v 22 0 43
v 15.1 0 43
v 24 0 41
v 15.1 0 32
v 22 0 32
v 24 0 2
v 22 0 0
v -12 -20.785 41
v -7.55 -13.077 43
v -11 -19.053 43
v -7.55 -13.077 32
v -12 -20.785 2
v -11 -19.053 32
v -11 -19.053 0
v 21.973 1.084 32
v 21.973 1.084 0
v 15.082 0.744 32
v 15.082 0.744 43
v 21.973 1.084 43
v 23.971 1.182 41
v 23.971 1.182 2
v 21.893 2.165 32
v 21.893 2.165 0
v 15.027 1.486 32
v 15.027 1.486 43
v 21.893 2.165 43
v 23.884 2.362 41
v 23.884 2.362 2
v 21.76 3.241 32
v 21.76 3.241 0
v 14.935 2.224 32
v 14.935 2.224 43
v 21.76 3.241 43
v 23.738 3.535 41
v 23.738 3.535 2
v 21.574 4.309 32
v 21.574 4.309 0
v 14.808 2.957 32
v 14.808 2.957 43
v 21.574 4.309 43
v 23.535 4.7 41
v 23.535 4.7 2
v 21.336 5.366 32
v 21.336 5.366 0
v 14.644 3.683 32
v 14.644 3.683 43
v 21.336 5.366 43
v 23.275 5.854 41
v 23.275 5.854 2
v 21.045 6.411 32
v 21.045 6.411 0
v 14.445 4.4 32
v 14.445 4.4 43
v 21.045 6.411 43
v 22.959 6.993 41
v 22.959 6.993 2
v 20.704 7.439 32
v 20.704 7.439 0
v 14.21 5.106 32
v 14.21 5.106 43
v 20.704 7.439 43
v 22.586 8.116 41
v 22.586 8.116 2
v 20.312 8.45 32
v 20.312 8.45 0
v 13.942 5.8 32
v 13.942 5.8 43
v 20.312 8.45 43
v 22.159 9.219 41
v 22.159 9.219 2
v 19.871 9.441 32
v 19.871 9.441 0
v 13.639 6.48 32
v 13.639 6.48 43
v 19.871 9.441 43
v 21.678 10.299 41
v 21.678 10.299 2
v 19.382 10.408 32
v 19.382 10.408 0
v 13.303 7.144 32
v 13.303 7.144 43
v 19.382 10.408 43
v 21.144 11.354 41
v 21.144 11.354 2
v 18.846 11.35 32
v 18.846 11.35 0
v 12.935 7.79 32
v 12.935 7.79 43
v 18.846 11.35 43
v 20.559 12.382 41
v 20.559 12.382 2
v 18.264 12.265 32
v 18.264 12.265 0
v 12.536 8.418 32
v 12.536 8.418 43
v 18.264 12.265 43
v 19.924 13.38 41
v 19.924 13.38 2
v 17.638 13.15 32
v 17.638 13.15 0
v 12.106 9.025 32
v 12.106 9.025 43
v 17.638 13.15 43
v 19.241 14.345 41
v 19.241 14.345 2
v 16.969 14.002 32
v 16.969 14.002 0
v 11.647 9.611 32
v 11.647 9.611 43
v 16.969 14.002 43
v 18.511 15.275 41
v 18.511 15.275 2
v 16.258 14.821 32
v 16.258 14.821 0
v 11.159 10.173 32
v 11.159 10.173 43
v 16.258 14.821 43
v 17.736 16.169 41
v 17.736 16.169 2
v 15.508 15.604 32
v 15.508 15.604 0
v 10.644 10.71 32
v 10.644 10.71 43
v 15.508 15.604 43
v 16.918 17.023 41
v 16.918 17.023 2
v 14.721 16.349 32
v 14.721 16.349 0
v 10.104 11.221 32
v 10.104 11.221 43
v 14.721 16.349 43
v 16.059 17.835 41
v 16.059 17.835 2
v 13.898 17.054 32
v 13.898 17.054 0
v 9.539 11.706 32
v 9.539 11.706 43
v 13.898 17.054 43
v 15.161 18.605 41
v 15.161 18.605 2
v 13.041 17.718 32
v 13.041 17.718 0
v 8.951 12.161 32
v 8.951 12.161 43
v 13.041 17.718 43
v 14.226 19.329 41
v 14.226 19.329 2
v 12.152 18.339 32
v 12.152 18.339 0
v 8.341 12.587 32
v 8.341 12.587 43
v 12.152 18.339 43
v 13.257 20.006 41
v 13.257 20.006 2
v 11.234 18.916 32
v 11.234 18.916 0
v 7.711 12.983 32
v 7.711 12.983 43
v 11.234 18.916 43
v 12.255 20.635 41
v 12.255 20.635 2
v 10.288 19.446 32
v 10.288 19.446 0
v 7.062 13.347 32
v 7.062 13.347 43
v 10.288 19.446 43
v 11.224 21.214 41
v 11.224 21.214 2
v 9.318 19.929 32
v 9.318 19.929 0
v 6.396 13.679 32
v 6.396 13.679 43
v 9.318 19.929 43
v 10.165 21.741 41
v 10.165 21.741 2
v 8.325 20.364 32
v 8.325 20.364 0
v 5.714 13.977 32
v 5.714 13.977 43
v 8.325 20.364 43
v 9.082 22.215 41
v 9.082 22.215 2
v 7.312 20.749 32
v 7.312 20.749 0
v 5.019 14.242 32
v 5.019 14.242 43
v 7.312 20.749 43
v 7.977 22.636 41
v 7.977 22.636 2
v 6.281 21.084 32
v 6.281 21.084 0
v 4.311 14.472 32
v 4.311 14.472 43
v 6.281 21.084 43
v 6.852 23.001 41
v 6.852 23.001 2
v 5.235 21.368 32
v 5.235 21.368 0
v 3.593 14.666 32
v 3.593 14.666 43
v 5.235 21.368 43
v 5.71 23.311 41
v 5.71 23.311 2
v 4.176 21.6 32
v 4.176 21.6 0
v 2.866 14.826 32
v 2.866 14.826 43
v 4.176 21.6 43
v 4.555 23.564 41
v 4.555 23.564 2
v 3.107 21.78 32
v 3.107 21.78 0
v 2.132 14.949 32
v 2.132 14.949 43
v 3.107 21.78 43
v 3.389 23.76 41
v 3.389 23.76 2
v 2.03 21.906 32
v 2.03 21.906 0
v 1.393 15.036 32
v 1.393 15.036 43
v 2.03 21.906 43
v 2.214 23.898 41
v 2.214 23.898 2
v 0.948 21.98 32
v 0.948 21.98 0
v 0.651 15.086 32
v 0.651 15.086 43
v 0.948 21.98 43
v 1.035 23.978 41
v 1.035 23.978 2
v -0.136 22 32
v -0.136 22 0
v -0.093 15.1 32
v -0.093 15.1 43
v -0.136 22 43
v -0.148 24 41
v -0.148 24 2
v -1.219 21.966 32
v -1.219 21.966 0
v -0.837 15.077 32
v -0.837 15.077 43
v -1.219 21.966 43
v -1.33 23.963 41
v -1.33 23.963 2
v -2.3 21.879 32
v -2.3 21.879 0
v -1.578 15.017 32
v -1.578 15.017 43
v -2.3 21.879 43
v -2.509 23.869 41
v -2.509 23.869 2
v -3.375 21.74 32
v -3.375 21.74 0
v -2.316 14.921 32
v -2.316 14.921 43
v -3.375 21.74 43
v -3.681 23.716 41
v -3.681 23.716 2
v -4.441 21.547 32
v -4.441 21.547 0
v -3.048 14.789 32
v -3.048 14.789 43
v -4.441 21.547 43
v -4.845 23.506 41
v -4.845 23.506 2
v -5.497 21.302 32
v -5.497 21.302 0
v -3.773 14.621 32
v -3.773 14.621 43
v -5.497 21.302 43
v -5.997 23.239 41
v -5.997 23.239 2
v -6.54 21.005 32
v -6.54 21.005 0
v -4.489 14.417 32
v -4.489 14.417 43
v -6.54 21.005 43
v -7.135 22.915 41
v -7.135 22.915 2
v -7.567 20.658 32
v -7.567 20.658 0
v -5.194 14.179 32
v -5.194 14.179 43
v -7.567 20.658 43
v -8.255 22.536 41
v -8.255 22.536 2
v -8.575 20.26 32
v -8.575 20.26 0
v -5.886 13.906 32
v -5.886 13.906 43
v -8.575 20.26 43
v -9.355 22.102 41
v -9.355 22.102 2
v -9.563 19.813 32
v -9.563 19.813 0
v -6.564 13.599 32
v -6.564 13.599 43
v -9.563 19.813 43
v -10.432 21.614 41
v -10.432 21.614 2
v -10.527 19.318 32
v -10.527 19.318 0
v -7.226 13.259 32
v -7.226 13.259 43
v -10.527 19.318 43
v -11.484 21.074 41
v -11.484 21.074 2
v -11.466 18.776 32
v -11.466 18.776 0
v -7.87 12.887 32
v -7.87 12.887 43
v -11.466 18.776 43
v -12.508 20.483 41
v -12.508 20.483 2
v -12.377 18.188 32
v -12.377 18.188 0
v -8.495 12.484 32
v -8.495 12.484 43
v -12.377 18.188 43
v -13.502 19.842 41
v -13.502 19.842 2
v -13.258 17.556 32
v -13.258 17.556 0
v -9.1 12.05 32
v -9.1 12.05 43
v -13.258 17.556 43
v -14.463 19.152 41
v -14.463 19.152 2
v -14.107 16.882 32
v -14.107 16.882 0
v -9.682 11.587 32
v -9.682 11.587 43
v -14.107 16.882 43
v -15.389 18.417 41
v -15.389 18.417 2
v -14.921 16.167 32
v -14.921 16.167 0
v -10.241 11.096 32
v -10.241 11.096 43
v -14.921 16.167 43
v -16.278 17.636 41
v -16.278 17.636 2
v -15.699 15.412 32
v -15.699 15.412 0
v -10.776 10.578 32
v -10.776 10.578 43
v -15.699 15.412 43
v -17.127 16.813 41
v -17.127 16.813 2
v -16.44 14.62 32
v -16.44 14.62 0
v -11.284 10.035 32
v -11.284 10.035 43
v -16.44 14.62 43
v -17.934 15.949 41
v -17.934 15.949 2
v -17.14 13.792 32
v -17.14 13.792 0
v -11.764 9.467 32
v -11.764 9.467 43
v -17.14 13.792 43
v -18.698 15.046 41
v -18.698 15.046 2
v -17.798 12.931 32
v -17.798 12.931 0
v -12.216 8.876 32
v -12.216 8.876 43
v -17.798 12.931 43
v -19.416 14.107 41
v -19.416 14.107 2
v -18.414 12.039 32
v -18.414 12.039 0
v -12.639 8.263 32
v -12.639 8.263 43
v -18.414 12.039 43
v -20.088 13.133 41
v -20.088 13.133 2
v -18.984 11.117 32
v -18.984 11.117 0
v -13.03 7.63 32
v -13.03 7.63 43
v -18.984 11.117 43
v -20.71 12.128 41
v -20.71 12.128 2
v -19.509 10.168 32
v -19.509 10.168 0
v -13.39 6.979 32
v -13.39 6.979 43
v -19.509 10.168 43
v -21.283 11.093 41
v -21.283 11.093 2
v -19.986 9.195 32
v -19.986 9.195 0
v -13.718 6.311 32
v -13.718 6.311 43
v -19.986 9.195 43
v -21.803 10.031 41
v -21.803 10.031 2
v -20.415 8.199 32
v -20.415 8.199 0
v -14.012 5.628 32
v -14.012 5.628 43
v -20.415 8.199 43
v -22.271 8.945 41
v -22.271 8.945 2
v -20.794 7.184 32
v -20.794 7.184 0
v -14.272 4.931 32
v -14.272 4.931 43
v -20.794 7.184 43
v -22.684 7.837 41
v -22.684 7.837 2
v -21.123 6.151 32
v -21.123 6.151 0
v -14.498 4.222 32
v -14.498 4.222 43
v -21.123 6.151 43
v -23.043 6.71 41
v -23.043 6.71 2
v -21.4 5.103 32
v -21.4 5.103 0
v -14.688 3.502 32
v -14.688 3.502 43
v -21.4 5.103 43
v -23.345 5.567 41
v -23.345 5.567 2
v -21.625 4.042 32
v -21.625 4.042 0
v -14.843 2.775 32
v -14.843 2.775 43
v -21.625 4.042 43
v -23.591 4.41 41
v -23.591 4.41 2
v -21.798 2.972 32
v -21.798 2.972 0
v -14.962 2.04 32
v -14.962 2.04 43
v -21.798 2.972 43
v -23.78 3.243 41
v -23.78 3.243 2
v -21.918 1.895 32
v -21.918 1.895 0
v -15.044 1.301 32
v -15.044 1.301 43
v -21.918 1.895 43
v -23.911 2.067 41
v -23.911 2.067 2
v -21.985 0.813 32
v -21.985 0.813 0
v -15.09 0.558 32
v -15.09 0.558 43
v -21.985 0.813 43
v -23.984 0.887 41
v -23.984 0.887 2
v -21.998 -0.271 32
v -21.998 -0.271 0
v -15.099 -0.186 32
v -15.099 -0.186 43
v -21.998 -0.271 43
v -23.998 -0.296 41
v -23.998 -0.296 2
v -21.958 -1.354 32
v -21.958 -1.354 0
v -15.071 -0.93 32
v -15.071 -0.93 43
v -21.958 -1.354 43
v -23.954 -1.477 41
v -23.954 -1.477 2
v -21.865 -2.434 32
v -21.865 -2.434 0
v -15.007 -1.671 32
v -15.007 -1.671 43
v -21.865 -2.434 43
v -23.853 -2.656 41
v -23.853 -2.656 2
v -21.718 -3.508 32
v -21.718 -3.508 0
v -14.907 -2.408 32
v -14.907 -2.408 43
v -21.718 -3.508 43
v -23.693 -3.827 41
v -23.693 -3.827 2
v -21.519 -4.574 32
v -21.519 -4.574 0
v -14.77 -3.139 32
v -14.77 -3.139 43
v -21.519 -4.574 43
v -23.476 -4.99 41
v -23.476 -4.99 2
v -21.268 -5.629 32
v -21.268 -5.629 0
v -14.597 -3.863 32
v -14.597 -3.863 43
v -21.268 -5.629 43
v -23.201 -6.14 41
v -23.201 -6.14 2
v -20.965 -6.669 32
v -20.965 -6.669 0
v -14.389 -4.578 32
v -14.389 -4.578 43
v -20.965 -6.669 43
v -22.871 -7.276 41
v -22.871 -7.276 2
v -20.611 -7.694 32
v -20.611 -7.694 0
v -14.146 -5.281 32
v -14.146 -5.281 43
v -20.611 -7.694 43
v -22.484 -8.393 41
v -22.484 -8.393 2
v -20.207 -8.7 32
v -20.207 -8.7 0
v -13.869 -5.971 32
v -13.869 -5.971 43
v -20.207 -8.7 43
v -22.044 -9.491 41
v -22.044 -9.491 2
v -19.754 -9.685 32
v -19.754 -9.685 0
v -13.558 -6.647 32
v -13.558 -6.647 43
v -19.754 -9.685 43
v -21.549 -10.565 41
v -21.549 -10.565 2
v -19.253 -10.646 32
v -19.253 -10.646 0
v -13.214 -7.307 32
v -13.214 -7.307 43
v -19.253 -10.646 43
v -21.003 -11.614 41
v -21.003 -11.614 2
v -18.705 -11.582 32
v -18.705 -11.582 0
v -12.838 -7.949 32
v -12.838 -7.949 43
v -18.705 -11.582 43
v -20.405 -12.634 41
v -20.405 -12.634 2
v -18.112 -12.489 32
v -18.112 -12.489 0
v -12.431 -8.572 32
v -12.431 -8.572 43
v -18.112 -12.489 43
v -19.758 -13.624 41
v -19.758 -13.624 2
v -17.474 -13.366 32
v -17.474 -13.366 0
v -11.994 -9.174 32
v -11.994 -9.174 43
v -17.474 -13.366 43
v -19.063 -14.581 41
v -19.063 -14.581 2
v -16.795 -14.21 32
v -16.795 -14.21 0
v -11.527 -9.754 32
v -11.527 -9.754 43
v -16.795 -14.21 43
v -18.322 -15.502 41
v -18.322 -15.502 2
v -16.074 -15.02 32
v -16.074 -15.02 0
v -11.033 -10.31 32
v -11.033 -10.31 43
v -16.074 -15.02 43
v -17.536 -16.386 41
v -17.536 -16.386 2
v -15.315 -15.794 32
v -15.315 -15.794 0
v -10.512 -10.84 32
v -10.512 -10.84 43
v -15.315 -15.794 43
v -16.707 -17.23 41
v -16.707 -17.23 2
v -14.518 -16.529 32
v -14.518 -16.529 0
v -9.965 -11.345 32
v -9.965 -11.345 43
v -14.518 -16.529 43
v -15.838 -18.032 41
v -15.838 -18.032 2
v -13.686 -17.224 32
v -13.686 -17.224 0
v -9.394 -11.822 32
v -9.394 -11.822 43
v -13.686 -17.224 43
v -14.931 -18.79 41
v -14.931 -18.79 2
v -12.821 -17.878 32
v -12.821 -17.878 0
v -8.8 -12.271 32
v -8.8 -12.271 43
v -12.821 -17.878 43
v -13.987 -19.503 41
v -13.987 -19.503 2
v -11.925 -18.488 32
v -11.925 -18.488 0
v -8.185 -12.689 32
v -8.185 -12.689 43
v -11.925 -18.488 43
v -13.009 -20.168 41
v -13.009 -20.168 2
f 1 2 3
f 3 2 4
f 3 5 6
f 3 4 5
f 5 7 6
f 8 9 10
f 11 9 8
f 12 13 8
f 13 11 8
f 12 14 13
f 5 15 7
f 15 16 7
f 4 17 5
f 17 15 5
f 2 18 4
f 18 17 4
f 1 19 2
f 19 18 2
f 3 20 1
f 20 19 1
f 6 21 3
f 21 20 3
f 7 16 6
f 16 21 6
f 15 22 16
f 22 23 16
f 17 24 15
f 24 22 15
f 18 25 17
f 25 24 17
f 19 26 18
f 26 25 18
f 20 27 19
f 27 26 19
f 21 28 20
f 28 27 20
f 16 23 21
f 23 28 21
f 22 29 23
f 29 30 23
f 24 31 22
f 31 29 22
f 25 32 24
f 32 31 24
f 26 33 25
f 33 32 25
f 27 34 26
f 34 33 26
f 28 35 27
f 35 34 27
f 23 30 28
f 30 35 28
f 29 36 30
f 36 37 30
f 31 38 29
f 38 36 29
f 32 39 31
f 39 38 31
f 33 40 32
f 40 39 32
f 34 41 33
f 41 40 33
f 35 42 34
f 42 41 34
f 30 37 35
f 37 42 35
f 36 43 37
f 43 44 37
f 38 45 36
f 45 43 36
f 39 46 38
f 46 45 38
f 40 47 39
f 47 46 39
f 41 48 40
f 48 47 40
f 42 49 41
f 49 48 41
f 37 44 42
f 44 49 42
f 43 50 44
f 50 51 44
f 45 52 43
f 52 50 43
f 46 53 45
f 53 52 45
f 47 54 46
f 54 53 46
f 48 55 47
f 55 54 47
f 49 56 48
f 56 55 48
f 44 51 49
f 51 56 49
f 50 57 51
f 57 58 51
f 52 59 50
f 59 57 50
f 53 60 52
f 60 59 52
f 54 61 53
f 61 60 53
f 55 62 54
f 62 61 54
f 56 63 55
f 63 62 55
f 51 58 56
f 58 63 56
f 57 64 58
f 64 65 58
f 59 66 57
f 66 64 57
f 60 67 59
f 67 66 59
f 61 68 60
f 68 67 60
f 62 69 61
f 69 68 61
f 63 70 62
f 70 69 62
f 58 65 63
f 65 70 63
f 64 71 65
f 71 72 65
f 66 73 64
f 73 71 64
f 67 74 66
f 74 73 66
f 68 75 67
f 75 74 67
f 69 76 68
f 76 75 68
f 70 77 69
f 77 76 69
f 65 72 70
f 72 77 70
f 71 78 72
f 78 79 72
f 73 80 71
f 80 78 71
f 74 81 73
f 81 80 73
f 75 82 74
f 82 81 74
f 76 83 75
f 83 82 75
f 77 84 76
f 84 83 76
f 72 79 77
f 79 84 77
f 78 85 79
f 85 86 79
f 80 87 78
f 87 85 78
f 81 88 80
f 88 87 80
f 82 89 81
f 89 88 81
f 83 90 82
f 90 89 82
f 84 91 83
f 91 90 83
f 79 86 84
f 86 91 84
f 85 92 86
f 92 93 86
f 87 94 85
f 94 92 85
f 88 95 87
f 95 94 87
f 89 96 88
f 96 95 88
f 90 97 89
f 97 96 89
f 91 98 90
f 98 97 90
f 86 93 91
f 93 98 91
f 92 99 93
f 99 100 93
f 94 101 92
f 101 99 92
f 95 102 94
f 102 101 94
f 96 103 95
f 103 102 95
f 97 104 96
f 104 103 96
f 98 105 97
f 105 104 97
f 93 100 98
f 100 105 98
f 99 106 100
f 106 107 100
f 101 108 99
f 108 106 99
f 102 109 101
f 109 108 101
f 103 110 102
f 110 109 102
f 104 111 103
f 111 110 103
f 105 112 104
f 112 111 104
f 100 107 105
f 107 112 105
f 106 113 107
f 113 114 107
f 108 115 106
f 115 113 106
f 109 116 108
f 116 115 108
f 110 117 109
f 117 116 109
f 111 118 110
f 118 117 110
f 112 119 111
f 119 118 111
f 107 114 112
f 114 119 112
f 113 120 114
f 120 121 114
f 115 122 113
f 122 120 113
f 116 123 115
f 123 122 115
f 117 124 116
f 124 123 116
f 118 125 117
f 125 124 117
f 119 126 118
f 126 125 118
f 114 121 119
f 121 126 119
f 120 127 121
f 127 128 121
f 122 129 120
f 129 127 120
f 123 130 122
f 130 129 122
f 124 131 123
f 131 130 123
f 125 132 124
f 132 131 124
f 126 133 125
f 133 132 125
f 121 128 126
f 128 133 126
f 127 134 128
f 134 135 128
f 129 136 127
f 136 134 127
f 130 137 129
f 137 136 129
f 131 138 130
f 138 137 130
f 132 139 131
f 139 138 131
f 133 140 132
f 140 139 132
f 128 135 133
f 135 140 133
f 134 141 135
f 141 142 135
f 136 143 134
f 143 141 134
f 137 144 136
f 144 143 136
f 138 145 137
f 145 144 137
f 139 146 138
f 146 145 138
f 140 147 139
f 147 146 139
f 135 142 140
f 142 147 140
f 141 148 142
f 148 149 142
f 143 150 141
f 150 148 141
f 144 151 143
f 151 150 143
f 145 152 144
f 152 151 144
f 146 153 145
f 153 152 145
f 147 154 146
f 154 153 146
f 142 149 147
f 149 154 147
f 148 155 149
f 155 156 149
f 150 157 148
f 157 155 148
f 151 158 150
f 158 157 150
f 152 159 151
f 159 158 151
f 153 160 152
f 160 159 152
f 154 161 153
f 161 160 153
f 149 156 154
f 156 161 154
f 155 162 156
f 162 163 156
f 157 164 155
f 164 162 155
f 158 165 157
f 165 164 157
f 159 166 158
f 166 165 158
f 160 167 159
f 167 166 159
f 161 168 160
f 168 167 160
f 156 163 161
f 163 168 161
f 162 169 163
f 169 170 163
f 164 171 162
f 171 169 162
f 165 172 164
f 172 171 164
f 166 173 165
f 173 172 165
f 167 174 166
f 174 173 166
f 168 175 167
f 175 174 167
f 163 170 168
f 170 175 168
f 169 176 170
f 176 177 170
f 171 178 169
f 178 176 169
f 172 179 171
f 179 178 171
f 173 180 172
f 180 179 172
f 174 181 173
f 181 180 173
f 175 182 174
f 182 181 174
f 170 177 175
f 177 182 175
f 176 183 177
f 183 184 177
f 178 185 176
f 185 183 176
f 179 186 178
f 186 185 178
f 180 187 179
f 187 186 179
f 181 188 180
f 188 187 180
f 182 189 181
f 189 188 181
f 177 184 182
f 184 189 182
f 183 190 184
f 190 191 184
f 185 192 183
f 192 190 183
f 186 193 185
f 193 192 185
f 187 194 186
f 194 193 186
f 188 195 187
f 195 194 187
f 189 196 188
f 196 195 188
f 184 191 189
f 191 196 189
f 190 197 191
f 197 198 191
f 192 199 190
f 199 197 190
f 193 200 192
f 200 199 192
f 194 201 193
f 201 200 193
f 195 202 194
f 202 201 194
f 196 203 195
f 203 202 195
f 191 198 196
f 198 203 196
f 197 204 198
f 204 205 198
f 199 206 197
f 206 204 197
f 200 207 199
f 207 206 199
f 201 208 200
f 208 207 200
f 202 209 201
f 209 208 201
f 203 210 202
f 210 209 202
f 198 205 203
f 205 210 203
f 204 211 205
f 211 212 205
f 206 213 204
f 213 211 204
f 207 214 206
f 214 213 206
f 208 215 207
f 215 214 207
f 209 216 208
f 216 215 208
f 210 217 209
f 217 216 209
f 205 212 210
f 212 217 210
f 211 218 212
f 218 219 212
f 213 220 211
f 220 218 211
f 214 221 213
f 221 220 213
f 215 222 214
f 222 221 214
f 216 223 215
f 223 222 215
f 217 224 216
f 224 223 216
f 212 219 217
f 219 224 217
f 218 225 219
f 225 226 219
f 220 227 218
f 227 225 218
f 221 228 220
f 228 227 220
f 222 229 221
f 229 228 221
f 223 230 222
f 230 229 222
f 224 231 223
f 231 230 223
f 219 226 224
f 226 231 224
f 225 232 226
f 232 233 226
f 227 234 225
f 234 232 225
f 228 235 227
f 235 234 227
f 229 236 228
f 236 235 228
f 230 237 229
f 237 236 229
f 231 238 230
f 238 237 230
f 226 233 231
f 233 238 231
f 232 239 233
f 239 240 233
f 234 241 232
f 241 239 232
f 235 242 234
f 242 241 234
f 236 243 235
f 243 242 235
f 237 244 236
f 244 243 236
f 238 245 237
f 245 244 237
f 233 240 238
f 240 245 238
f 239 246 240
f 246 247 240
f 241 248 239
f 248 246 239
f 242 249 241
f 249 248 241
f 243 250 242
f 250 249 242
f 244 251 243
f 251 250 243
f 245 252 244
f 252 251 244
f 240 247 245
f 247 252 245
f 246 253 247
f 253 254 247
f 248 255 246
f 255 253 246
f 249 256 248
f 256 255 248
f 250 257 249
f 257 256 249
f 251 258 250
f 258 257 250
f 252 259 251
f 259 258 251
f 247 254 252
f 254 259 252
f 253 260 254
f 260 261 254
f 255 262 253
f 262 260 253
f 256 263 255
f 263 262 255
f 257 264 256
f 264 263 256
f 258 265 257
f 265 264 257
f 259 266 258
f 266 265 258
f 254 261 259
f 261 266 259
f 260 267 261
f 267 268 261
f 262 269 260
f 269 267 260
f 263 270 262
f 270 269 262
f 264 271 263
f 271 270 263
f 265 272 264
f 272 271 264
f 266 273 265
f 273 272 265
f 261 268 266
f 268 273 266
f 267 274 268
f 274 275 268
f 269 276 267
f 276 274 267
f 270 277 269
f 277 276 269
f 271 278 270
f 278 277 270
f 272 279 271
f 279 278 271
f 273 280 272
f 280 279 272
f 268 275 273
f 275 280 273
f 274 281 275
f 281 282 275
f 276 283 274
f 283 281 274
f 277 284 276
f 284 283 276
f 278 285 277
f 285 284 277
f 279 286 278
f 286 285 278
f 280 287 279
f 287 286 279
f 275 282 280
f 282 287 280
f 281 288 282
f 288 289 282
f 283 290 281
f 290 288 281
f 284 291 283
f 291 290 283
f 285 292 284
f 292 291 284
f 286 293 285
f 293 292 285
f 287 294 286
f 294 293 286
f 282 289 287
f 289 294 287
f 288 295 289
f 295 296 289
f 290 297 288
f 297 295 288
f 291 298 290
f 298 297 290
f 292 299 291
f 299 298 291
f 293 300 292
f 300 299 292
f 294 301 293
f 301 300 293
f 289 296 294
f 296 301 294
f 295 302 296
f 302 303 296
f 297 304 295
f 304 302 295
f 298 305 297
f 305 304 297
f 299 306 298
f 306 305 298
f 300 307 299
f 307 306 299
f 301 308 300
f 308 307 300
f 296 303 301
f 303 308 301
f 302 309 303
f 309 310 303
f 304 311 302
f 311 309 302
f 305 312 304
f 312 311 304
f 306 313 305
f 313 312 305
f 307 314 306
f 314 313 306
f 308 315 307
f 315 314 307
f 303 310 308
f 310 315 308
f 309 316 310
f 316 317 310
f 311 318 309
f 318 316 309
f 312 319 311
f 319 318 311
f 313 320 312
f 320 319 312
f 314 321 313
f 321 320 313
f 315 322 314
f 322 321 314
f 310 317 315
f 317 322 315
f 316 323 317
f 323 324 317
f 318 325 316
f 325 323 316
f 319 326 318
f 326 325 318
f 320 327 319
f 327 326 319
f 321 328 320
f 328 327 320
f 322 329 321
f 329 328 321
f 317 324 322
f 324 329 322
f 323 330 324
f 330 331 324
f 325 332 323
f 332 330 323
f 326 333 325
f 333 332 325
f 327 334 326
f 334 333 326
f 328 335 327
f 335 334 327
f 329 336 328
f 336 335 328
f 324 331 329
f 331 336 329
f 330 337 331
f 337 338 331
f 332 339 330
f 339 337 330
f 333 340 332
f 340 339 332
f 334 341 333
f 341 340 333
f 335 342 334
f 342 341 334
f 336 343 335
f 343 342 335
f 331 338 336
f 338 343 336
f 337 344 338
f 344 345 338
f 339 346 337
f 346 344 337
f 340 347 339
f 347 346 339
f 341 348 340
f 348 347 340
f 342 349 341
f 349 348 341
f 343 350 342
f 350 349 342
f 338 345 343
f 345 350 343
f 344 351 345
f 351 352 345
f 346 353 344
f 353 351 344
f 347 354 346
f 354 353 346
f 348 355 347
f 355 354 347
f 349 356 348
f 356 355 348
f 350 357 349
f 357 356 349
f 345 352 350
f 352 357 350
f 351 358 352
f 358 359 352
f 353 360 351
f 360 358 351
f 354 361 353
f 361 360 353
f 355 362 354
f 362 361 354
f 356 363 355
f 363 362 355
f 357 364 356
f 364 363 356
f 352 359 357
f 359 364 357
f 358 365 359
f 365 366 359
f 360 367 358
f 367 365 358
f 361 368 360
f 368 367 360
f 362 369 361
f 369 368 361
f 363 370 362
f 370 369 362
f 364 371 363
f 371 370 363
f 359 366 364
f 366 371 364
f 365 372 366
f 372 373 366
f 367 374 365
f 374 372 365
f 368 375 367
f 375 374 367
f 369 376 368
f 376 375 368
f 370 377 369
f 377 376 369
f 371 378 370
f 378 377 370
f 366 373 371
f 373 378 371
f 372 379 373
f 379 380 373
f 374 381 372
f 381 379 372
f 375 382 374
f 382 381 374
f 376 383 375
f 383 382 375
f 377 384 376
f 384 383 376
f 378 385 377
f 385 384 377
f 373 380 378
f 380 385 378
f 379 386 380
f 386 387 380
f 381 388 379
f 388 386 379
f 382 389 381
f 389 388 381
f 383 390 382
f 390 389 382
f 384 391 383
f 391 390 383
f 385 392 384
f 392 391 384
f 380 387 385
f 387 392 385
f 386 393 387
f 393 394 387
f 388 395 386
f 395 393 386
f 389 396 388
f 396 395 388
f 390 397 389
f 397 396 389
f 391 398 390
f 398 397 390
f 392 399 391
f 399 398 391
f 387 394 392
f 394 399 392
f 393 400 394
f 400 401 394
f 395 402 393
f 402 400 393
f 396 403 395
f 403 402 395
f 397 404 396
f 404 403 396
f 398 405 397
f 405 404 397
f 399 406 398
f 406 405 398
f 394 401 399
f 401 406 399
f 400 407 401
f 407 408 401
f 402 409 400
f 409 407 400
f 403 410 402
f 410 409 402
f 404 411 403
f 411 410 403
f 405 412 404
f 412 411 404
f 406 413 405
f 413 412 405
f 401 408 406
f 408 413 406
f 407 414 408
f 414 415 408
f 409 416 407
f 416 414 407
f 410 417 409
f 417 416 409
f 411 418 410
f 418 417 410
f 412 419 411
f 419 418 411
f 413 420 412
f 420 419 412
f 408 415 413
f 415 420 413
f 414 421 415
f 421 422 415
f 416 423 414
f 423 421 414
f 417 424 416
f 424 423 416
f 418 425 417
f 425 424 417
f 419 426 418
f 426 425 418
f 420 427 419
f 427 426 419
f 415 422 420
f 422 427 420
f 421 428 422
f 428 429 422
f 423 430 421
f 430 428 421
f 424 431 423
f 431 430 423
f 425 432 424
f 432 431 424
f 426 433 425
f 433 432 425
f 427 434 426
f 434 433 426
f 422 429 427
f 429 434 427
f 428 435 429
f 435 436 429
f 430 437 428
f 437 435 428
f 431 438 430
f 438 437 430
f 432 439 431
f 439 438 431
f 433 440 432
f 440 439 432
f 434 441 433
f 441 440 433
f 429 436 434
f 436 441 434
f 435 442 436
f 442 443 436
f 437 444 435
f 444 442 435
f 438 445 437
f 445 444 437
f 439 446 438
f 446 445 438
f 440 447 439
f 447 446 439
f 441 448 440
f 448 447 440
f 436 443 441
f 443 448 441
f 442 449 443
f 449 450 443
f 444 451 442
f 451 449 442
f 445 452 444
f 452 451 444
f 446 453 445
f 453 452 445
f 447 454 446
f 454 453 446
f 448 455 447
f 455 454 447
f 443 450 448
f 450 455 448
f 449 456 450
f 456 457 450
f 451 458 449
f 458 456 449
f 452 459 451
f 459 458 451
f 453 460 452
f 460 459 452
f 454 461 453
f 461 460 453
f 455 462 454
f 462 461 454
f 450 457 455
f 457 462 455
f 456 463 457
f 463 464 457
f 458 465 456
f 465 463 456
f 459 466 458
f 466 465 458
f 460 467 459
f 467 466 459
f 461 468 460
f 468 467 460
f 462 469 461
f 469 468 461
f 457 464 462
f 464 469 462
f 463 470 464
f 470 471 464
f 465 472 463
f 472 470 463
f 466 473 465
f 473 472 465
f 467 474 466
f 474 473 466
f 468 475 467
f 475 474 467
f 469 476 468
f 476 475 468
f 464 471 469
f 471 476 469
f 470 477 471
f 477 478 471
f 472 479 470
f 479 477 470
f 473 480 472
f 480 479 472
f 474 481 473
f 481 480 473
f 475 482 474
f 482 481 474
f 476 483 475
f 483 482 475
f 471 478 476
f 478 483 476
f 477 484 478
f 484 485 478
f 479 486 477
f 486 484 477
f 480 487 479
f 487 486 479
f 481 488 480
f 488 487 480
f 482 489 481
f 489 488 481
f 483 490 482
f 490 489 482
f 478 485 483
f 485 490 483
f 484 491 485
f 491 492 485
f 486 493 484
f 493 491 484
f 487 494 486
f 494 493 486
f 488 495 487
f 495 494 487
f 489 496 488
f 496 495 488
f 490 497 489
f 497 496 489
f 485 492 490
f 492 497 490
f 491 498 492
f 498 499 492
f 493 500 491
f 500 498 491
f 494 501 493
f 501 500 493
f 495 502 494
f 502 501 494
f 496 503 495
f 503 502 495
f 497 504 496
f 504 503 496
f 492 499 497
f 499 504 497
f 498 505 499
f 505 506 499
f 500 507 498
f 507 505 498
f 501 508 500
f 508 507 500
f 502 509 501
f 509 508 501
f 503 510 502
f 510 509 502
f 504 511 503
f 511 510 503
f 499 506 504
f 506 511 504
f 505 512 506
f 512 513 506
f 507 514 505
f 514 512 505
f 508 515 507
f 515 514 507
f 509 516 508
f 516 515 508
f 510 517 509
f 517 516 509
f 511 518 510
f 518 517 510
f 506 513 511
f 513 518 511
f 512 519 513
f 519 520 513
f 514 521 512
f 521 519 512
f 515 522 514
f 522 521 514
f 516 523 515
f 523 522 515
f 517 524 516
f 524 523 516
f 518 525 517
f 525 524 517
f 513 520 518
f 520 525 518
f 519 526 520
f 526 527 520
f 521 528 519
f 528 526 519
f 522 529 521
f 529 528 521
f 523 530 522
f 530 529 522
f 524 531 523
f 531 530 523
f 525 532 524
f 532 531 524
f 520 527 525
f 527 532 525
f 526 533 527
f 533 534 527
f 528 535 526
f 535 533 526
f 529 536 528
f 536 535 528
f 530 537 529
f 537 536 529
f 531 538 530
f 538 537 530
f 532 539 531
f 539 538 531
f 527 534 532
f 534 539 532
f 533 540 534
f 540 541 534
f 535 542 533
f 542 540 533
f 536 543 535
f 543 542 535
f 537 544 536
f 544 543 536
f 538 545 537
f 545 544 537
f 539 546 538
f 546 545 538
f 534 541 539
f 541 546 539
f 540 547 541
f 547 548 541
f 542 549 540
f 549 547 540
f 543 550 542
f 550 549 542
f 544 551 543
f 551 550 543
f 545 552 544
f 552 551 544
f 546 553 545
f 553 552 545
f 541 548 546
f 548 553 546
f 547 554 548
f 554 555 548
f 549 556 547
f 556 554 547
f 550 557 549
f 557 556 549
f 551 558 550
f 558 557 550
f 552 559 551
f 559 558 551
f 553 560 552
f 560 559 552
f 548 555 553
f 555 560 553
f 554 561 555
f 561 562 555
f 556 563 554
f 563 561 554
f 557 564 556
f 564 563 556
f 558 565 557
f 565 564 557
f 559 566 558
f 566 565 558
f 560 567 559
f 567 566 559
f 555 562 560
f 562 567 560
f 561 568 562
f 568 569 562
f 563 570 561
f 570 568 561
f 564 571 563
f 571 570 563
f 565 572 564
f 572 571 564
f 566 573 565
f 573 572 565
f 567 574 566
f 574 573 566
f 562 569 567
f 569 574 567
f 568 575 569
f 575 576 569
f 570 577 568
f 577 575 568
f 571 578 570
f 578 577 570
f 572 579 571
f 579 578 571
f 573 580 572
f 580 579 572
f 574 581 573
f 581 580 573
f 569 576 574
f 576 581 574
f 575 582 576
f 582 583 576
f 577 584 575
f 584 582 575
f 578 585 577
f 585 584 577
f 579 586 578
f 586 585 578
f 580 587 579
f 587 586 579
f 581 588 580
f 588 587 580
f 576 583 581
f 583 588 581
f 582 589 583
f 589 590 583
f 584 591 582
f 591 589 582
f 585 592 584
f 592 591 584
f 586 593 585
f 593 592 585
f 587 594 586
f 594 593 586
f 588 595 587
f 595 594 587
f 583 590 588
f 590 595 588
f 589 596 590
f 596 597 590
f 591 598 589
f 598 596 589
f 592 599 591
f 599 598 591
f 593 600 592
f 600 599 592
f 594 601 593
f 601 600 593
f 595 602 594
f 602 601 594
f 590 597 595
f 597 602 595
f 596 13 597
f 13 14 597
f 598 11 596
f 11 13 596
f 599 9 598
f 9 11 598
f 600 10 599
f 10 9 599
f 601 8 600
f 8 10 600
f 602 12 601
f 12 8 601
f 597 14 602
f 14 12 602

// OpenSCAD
//###############################################################################
//# Washer Door Protector                                                       #
//###############################################################################
//#    Copyright 2025 Dirk Heisswolf                                            #
//#    This file is part of the WasherDoorProtector project.                    #
//#                                                                             #
//#    This project is free software: you can redistribute it and/or modify     #
//#    it under the terms of the GNU General Public License as published by     #
//#    the Free Software Foundation, either version 3 of the License, or        #
//#    (at your option) any later version.                                      #
//#                                                                             #
//#    This project is distributed in the hope that it will be useful,          #
//#    but WITHOUT ANY WARRANTY; without even the implied warranty of           #
//#    MERCHANTABILITY or FITNESS FOR A PARTICULAR PURPOSE.  See the            #
//#    GNU General Public License for more details.                             #
//#                                                                             #
//#    You should have received a copy of the GNU General Public License        #
//#    along with this project.  If not, see <http://www.gnu.org/licenses/>.    #
//#                                                                             #
//###############################################################################
//# Description:                                                                #
//#   A stop for the washer door                                                #
//#                                                                             #
//###############################################################################
//# Version History:                                                            #
//#   March 1, 2025                                                             #
//#      - Initial release                                                      #
//#                                                                             #
//###############################################################################

d1 = 44;
d2 = 30.2;
d3 = 48;
l1 = 10;
l2 = 32;
l3 = 43;
c  = 2;
$fn=128;

module washerDoorProtector() {
   rotate_extrude(angle=240) 
   difference() {
       union() {
           polygon([[d1/2,    0],
                    [d1/2,   l1],
                    [d1/2,   l2],
                    [d2/2,   l2],
                    [d2/2,   l3],
                    [d3/2-c, l3],
                    [d3/2,   l3-c],
                    [d3/2,   c],
                    [d3/2-c, 0]]);
                    

        


       }
       union() {



       }
   }
} 
washerDoorProtector();
